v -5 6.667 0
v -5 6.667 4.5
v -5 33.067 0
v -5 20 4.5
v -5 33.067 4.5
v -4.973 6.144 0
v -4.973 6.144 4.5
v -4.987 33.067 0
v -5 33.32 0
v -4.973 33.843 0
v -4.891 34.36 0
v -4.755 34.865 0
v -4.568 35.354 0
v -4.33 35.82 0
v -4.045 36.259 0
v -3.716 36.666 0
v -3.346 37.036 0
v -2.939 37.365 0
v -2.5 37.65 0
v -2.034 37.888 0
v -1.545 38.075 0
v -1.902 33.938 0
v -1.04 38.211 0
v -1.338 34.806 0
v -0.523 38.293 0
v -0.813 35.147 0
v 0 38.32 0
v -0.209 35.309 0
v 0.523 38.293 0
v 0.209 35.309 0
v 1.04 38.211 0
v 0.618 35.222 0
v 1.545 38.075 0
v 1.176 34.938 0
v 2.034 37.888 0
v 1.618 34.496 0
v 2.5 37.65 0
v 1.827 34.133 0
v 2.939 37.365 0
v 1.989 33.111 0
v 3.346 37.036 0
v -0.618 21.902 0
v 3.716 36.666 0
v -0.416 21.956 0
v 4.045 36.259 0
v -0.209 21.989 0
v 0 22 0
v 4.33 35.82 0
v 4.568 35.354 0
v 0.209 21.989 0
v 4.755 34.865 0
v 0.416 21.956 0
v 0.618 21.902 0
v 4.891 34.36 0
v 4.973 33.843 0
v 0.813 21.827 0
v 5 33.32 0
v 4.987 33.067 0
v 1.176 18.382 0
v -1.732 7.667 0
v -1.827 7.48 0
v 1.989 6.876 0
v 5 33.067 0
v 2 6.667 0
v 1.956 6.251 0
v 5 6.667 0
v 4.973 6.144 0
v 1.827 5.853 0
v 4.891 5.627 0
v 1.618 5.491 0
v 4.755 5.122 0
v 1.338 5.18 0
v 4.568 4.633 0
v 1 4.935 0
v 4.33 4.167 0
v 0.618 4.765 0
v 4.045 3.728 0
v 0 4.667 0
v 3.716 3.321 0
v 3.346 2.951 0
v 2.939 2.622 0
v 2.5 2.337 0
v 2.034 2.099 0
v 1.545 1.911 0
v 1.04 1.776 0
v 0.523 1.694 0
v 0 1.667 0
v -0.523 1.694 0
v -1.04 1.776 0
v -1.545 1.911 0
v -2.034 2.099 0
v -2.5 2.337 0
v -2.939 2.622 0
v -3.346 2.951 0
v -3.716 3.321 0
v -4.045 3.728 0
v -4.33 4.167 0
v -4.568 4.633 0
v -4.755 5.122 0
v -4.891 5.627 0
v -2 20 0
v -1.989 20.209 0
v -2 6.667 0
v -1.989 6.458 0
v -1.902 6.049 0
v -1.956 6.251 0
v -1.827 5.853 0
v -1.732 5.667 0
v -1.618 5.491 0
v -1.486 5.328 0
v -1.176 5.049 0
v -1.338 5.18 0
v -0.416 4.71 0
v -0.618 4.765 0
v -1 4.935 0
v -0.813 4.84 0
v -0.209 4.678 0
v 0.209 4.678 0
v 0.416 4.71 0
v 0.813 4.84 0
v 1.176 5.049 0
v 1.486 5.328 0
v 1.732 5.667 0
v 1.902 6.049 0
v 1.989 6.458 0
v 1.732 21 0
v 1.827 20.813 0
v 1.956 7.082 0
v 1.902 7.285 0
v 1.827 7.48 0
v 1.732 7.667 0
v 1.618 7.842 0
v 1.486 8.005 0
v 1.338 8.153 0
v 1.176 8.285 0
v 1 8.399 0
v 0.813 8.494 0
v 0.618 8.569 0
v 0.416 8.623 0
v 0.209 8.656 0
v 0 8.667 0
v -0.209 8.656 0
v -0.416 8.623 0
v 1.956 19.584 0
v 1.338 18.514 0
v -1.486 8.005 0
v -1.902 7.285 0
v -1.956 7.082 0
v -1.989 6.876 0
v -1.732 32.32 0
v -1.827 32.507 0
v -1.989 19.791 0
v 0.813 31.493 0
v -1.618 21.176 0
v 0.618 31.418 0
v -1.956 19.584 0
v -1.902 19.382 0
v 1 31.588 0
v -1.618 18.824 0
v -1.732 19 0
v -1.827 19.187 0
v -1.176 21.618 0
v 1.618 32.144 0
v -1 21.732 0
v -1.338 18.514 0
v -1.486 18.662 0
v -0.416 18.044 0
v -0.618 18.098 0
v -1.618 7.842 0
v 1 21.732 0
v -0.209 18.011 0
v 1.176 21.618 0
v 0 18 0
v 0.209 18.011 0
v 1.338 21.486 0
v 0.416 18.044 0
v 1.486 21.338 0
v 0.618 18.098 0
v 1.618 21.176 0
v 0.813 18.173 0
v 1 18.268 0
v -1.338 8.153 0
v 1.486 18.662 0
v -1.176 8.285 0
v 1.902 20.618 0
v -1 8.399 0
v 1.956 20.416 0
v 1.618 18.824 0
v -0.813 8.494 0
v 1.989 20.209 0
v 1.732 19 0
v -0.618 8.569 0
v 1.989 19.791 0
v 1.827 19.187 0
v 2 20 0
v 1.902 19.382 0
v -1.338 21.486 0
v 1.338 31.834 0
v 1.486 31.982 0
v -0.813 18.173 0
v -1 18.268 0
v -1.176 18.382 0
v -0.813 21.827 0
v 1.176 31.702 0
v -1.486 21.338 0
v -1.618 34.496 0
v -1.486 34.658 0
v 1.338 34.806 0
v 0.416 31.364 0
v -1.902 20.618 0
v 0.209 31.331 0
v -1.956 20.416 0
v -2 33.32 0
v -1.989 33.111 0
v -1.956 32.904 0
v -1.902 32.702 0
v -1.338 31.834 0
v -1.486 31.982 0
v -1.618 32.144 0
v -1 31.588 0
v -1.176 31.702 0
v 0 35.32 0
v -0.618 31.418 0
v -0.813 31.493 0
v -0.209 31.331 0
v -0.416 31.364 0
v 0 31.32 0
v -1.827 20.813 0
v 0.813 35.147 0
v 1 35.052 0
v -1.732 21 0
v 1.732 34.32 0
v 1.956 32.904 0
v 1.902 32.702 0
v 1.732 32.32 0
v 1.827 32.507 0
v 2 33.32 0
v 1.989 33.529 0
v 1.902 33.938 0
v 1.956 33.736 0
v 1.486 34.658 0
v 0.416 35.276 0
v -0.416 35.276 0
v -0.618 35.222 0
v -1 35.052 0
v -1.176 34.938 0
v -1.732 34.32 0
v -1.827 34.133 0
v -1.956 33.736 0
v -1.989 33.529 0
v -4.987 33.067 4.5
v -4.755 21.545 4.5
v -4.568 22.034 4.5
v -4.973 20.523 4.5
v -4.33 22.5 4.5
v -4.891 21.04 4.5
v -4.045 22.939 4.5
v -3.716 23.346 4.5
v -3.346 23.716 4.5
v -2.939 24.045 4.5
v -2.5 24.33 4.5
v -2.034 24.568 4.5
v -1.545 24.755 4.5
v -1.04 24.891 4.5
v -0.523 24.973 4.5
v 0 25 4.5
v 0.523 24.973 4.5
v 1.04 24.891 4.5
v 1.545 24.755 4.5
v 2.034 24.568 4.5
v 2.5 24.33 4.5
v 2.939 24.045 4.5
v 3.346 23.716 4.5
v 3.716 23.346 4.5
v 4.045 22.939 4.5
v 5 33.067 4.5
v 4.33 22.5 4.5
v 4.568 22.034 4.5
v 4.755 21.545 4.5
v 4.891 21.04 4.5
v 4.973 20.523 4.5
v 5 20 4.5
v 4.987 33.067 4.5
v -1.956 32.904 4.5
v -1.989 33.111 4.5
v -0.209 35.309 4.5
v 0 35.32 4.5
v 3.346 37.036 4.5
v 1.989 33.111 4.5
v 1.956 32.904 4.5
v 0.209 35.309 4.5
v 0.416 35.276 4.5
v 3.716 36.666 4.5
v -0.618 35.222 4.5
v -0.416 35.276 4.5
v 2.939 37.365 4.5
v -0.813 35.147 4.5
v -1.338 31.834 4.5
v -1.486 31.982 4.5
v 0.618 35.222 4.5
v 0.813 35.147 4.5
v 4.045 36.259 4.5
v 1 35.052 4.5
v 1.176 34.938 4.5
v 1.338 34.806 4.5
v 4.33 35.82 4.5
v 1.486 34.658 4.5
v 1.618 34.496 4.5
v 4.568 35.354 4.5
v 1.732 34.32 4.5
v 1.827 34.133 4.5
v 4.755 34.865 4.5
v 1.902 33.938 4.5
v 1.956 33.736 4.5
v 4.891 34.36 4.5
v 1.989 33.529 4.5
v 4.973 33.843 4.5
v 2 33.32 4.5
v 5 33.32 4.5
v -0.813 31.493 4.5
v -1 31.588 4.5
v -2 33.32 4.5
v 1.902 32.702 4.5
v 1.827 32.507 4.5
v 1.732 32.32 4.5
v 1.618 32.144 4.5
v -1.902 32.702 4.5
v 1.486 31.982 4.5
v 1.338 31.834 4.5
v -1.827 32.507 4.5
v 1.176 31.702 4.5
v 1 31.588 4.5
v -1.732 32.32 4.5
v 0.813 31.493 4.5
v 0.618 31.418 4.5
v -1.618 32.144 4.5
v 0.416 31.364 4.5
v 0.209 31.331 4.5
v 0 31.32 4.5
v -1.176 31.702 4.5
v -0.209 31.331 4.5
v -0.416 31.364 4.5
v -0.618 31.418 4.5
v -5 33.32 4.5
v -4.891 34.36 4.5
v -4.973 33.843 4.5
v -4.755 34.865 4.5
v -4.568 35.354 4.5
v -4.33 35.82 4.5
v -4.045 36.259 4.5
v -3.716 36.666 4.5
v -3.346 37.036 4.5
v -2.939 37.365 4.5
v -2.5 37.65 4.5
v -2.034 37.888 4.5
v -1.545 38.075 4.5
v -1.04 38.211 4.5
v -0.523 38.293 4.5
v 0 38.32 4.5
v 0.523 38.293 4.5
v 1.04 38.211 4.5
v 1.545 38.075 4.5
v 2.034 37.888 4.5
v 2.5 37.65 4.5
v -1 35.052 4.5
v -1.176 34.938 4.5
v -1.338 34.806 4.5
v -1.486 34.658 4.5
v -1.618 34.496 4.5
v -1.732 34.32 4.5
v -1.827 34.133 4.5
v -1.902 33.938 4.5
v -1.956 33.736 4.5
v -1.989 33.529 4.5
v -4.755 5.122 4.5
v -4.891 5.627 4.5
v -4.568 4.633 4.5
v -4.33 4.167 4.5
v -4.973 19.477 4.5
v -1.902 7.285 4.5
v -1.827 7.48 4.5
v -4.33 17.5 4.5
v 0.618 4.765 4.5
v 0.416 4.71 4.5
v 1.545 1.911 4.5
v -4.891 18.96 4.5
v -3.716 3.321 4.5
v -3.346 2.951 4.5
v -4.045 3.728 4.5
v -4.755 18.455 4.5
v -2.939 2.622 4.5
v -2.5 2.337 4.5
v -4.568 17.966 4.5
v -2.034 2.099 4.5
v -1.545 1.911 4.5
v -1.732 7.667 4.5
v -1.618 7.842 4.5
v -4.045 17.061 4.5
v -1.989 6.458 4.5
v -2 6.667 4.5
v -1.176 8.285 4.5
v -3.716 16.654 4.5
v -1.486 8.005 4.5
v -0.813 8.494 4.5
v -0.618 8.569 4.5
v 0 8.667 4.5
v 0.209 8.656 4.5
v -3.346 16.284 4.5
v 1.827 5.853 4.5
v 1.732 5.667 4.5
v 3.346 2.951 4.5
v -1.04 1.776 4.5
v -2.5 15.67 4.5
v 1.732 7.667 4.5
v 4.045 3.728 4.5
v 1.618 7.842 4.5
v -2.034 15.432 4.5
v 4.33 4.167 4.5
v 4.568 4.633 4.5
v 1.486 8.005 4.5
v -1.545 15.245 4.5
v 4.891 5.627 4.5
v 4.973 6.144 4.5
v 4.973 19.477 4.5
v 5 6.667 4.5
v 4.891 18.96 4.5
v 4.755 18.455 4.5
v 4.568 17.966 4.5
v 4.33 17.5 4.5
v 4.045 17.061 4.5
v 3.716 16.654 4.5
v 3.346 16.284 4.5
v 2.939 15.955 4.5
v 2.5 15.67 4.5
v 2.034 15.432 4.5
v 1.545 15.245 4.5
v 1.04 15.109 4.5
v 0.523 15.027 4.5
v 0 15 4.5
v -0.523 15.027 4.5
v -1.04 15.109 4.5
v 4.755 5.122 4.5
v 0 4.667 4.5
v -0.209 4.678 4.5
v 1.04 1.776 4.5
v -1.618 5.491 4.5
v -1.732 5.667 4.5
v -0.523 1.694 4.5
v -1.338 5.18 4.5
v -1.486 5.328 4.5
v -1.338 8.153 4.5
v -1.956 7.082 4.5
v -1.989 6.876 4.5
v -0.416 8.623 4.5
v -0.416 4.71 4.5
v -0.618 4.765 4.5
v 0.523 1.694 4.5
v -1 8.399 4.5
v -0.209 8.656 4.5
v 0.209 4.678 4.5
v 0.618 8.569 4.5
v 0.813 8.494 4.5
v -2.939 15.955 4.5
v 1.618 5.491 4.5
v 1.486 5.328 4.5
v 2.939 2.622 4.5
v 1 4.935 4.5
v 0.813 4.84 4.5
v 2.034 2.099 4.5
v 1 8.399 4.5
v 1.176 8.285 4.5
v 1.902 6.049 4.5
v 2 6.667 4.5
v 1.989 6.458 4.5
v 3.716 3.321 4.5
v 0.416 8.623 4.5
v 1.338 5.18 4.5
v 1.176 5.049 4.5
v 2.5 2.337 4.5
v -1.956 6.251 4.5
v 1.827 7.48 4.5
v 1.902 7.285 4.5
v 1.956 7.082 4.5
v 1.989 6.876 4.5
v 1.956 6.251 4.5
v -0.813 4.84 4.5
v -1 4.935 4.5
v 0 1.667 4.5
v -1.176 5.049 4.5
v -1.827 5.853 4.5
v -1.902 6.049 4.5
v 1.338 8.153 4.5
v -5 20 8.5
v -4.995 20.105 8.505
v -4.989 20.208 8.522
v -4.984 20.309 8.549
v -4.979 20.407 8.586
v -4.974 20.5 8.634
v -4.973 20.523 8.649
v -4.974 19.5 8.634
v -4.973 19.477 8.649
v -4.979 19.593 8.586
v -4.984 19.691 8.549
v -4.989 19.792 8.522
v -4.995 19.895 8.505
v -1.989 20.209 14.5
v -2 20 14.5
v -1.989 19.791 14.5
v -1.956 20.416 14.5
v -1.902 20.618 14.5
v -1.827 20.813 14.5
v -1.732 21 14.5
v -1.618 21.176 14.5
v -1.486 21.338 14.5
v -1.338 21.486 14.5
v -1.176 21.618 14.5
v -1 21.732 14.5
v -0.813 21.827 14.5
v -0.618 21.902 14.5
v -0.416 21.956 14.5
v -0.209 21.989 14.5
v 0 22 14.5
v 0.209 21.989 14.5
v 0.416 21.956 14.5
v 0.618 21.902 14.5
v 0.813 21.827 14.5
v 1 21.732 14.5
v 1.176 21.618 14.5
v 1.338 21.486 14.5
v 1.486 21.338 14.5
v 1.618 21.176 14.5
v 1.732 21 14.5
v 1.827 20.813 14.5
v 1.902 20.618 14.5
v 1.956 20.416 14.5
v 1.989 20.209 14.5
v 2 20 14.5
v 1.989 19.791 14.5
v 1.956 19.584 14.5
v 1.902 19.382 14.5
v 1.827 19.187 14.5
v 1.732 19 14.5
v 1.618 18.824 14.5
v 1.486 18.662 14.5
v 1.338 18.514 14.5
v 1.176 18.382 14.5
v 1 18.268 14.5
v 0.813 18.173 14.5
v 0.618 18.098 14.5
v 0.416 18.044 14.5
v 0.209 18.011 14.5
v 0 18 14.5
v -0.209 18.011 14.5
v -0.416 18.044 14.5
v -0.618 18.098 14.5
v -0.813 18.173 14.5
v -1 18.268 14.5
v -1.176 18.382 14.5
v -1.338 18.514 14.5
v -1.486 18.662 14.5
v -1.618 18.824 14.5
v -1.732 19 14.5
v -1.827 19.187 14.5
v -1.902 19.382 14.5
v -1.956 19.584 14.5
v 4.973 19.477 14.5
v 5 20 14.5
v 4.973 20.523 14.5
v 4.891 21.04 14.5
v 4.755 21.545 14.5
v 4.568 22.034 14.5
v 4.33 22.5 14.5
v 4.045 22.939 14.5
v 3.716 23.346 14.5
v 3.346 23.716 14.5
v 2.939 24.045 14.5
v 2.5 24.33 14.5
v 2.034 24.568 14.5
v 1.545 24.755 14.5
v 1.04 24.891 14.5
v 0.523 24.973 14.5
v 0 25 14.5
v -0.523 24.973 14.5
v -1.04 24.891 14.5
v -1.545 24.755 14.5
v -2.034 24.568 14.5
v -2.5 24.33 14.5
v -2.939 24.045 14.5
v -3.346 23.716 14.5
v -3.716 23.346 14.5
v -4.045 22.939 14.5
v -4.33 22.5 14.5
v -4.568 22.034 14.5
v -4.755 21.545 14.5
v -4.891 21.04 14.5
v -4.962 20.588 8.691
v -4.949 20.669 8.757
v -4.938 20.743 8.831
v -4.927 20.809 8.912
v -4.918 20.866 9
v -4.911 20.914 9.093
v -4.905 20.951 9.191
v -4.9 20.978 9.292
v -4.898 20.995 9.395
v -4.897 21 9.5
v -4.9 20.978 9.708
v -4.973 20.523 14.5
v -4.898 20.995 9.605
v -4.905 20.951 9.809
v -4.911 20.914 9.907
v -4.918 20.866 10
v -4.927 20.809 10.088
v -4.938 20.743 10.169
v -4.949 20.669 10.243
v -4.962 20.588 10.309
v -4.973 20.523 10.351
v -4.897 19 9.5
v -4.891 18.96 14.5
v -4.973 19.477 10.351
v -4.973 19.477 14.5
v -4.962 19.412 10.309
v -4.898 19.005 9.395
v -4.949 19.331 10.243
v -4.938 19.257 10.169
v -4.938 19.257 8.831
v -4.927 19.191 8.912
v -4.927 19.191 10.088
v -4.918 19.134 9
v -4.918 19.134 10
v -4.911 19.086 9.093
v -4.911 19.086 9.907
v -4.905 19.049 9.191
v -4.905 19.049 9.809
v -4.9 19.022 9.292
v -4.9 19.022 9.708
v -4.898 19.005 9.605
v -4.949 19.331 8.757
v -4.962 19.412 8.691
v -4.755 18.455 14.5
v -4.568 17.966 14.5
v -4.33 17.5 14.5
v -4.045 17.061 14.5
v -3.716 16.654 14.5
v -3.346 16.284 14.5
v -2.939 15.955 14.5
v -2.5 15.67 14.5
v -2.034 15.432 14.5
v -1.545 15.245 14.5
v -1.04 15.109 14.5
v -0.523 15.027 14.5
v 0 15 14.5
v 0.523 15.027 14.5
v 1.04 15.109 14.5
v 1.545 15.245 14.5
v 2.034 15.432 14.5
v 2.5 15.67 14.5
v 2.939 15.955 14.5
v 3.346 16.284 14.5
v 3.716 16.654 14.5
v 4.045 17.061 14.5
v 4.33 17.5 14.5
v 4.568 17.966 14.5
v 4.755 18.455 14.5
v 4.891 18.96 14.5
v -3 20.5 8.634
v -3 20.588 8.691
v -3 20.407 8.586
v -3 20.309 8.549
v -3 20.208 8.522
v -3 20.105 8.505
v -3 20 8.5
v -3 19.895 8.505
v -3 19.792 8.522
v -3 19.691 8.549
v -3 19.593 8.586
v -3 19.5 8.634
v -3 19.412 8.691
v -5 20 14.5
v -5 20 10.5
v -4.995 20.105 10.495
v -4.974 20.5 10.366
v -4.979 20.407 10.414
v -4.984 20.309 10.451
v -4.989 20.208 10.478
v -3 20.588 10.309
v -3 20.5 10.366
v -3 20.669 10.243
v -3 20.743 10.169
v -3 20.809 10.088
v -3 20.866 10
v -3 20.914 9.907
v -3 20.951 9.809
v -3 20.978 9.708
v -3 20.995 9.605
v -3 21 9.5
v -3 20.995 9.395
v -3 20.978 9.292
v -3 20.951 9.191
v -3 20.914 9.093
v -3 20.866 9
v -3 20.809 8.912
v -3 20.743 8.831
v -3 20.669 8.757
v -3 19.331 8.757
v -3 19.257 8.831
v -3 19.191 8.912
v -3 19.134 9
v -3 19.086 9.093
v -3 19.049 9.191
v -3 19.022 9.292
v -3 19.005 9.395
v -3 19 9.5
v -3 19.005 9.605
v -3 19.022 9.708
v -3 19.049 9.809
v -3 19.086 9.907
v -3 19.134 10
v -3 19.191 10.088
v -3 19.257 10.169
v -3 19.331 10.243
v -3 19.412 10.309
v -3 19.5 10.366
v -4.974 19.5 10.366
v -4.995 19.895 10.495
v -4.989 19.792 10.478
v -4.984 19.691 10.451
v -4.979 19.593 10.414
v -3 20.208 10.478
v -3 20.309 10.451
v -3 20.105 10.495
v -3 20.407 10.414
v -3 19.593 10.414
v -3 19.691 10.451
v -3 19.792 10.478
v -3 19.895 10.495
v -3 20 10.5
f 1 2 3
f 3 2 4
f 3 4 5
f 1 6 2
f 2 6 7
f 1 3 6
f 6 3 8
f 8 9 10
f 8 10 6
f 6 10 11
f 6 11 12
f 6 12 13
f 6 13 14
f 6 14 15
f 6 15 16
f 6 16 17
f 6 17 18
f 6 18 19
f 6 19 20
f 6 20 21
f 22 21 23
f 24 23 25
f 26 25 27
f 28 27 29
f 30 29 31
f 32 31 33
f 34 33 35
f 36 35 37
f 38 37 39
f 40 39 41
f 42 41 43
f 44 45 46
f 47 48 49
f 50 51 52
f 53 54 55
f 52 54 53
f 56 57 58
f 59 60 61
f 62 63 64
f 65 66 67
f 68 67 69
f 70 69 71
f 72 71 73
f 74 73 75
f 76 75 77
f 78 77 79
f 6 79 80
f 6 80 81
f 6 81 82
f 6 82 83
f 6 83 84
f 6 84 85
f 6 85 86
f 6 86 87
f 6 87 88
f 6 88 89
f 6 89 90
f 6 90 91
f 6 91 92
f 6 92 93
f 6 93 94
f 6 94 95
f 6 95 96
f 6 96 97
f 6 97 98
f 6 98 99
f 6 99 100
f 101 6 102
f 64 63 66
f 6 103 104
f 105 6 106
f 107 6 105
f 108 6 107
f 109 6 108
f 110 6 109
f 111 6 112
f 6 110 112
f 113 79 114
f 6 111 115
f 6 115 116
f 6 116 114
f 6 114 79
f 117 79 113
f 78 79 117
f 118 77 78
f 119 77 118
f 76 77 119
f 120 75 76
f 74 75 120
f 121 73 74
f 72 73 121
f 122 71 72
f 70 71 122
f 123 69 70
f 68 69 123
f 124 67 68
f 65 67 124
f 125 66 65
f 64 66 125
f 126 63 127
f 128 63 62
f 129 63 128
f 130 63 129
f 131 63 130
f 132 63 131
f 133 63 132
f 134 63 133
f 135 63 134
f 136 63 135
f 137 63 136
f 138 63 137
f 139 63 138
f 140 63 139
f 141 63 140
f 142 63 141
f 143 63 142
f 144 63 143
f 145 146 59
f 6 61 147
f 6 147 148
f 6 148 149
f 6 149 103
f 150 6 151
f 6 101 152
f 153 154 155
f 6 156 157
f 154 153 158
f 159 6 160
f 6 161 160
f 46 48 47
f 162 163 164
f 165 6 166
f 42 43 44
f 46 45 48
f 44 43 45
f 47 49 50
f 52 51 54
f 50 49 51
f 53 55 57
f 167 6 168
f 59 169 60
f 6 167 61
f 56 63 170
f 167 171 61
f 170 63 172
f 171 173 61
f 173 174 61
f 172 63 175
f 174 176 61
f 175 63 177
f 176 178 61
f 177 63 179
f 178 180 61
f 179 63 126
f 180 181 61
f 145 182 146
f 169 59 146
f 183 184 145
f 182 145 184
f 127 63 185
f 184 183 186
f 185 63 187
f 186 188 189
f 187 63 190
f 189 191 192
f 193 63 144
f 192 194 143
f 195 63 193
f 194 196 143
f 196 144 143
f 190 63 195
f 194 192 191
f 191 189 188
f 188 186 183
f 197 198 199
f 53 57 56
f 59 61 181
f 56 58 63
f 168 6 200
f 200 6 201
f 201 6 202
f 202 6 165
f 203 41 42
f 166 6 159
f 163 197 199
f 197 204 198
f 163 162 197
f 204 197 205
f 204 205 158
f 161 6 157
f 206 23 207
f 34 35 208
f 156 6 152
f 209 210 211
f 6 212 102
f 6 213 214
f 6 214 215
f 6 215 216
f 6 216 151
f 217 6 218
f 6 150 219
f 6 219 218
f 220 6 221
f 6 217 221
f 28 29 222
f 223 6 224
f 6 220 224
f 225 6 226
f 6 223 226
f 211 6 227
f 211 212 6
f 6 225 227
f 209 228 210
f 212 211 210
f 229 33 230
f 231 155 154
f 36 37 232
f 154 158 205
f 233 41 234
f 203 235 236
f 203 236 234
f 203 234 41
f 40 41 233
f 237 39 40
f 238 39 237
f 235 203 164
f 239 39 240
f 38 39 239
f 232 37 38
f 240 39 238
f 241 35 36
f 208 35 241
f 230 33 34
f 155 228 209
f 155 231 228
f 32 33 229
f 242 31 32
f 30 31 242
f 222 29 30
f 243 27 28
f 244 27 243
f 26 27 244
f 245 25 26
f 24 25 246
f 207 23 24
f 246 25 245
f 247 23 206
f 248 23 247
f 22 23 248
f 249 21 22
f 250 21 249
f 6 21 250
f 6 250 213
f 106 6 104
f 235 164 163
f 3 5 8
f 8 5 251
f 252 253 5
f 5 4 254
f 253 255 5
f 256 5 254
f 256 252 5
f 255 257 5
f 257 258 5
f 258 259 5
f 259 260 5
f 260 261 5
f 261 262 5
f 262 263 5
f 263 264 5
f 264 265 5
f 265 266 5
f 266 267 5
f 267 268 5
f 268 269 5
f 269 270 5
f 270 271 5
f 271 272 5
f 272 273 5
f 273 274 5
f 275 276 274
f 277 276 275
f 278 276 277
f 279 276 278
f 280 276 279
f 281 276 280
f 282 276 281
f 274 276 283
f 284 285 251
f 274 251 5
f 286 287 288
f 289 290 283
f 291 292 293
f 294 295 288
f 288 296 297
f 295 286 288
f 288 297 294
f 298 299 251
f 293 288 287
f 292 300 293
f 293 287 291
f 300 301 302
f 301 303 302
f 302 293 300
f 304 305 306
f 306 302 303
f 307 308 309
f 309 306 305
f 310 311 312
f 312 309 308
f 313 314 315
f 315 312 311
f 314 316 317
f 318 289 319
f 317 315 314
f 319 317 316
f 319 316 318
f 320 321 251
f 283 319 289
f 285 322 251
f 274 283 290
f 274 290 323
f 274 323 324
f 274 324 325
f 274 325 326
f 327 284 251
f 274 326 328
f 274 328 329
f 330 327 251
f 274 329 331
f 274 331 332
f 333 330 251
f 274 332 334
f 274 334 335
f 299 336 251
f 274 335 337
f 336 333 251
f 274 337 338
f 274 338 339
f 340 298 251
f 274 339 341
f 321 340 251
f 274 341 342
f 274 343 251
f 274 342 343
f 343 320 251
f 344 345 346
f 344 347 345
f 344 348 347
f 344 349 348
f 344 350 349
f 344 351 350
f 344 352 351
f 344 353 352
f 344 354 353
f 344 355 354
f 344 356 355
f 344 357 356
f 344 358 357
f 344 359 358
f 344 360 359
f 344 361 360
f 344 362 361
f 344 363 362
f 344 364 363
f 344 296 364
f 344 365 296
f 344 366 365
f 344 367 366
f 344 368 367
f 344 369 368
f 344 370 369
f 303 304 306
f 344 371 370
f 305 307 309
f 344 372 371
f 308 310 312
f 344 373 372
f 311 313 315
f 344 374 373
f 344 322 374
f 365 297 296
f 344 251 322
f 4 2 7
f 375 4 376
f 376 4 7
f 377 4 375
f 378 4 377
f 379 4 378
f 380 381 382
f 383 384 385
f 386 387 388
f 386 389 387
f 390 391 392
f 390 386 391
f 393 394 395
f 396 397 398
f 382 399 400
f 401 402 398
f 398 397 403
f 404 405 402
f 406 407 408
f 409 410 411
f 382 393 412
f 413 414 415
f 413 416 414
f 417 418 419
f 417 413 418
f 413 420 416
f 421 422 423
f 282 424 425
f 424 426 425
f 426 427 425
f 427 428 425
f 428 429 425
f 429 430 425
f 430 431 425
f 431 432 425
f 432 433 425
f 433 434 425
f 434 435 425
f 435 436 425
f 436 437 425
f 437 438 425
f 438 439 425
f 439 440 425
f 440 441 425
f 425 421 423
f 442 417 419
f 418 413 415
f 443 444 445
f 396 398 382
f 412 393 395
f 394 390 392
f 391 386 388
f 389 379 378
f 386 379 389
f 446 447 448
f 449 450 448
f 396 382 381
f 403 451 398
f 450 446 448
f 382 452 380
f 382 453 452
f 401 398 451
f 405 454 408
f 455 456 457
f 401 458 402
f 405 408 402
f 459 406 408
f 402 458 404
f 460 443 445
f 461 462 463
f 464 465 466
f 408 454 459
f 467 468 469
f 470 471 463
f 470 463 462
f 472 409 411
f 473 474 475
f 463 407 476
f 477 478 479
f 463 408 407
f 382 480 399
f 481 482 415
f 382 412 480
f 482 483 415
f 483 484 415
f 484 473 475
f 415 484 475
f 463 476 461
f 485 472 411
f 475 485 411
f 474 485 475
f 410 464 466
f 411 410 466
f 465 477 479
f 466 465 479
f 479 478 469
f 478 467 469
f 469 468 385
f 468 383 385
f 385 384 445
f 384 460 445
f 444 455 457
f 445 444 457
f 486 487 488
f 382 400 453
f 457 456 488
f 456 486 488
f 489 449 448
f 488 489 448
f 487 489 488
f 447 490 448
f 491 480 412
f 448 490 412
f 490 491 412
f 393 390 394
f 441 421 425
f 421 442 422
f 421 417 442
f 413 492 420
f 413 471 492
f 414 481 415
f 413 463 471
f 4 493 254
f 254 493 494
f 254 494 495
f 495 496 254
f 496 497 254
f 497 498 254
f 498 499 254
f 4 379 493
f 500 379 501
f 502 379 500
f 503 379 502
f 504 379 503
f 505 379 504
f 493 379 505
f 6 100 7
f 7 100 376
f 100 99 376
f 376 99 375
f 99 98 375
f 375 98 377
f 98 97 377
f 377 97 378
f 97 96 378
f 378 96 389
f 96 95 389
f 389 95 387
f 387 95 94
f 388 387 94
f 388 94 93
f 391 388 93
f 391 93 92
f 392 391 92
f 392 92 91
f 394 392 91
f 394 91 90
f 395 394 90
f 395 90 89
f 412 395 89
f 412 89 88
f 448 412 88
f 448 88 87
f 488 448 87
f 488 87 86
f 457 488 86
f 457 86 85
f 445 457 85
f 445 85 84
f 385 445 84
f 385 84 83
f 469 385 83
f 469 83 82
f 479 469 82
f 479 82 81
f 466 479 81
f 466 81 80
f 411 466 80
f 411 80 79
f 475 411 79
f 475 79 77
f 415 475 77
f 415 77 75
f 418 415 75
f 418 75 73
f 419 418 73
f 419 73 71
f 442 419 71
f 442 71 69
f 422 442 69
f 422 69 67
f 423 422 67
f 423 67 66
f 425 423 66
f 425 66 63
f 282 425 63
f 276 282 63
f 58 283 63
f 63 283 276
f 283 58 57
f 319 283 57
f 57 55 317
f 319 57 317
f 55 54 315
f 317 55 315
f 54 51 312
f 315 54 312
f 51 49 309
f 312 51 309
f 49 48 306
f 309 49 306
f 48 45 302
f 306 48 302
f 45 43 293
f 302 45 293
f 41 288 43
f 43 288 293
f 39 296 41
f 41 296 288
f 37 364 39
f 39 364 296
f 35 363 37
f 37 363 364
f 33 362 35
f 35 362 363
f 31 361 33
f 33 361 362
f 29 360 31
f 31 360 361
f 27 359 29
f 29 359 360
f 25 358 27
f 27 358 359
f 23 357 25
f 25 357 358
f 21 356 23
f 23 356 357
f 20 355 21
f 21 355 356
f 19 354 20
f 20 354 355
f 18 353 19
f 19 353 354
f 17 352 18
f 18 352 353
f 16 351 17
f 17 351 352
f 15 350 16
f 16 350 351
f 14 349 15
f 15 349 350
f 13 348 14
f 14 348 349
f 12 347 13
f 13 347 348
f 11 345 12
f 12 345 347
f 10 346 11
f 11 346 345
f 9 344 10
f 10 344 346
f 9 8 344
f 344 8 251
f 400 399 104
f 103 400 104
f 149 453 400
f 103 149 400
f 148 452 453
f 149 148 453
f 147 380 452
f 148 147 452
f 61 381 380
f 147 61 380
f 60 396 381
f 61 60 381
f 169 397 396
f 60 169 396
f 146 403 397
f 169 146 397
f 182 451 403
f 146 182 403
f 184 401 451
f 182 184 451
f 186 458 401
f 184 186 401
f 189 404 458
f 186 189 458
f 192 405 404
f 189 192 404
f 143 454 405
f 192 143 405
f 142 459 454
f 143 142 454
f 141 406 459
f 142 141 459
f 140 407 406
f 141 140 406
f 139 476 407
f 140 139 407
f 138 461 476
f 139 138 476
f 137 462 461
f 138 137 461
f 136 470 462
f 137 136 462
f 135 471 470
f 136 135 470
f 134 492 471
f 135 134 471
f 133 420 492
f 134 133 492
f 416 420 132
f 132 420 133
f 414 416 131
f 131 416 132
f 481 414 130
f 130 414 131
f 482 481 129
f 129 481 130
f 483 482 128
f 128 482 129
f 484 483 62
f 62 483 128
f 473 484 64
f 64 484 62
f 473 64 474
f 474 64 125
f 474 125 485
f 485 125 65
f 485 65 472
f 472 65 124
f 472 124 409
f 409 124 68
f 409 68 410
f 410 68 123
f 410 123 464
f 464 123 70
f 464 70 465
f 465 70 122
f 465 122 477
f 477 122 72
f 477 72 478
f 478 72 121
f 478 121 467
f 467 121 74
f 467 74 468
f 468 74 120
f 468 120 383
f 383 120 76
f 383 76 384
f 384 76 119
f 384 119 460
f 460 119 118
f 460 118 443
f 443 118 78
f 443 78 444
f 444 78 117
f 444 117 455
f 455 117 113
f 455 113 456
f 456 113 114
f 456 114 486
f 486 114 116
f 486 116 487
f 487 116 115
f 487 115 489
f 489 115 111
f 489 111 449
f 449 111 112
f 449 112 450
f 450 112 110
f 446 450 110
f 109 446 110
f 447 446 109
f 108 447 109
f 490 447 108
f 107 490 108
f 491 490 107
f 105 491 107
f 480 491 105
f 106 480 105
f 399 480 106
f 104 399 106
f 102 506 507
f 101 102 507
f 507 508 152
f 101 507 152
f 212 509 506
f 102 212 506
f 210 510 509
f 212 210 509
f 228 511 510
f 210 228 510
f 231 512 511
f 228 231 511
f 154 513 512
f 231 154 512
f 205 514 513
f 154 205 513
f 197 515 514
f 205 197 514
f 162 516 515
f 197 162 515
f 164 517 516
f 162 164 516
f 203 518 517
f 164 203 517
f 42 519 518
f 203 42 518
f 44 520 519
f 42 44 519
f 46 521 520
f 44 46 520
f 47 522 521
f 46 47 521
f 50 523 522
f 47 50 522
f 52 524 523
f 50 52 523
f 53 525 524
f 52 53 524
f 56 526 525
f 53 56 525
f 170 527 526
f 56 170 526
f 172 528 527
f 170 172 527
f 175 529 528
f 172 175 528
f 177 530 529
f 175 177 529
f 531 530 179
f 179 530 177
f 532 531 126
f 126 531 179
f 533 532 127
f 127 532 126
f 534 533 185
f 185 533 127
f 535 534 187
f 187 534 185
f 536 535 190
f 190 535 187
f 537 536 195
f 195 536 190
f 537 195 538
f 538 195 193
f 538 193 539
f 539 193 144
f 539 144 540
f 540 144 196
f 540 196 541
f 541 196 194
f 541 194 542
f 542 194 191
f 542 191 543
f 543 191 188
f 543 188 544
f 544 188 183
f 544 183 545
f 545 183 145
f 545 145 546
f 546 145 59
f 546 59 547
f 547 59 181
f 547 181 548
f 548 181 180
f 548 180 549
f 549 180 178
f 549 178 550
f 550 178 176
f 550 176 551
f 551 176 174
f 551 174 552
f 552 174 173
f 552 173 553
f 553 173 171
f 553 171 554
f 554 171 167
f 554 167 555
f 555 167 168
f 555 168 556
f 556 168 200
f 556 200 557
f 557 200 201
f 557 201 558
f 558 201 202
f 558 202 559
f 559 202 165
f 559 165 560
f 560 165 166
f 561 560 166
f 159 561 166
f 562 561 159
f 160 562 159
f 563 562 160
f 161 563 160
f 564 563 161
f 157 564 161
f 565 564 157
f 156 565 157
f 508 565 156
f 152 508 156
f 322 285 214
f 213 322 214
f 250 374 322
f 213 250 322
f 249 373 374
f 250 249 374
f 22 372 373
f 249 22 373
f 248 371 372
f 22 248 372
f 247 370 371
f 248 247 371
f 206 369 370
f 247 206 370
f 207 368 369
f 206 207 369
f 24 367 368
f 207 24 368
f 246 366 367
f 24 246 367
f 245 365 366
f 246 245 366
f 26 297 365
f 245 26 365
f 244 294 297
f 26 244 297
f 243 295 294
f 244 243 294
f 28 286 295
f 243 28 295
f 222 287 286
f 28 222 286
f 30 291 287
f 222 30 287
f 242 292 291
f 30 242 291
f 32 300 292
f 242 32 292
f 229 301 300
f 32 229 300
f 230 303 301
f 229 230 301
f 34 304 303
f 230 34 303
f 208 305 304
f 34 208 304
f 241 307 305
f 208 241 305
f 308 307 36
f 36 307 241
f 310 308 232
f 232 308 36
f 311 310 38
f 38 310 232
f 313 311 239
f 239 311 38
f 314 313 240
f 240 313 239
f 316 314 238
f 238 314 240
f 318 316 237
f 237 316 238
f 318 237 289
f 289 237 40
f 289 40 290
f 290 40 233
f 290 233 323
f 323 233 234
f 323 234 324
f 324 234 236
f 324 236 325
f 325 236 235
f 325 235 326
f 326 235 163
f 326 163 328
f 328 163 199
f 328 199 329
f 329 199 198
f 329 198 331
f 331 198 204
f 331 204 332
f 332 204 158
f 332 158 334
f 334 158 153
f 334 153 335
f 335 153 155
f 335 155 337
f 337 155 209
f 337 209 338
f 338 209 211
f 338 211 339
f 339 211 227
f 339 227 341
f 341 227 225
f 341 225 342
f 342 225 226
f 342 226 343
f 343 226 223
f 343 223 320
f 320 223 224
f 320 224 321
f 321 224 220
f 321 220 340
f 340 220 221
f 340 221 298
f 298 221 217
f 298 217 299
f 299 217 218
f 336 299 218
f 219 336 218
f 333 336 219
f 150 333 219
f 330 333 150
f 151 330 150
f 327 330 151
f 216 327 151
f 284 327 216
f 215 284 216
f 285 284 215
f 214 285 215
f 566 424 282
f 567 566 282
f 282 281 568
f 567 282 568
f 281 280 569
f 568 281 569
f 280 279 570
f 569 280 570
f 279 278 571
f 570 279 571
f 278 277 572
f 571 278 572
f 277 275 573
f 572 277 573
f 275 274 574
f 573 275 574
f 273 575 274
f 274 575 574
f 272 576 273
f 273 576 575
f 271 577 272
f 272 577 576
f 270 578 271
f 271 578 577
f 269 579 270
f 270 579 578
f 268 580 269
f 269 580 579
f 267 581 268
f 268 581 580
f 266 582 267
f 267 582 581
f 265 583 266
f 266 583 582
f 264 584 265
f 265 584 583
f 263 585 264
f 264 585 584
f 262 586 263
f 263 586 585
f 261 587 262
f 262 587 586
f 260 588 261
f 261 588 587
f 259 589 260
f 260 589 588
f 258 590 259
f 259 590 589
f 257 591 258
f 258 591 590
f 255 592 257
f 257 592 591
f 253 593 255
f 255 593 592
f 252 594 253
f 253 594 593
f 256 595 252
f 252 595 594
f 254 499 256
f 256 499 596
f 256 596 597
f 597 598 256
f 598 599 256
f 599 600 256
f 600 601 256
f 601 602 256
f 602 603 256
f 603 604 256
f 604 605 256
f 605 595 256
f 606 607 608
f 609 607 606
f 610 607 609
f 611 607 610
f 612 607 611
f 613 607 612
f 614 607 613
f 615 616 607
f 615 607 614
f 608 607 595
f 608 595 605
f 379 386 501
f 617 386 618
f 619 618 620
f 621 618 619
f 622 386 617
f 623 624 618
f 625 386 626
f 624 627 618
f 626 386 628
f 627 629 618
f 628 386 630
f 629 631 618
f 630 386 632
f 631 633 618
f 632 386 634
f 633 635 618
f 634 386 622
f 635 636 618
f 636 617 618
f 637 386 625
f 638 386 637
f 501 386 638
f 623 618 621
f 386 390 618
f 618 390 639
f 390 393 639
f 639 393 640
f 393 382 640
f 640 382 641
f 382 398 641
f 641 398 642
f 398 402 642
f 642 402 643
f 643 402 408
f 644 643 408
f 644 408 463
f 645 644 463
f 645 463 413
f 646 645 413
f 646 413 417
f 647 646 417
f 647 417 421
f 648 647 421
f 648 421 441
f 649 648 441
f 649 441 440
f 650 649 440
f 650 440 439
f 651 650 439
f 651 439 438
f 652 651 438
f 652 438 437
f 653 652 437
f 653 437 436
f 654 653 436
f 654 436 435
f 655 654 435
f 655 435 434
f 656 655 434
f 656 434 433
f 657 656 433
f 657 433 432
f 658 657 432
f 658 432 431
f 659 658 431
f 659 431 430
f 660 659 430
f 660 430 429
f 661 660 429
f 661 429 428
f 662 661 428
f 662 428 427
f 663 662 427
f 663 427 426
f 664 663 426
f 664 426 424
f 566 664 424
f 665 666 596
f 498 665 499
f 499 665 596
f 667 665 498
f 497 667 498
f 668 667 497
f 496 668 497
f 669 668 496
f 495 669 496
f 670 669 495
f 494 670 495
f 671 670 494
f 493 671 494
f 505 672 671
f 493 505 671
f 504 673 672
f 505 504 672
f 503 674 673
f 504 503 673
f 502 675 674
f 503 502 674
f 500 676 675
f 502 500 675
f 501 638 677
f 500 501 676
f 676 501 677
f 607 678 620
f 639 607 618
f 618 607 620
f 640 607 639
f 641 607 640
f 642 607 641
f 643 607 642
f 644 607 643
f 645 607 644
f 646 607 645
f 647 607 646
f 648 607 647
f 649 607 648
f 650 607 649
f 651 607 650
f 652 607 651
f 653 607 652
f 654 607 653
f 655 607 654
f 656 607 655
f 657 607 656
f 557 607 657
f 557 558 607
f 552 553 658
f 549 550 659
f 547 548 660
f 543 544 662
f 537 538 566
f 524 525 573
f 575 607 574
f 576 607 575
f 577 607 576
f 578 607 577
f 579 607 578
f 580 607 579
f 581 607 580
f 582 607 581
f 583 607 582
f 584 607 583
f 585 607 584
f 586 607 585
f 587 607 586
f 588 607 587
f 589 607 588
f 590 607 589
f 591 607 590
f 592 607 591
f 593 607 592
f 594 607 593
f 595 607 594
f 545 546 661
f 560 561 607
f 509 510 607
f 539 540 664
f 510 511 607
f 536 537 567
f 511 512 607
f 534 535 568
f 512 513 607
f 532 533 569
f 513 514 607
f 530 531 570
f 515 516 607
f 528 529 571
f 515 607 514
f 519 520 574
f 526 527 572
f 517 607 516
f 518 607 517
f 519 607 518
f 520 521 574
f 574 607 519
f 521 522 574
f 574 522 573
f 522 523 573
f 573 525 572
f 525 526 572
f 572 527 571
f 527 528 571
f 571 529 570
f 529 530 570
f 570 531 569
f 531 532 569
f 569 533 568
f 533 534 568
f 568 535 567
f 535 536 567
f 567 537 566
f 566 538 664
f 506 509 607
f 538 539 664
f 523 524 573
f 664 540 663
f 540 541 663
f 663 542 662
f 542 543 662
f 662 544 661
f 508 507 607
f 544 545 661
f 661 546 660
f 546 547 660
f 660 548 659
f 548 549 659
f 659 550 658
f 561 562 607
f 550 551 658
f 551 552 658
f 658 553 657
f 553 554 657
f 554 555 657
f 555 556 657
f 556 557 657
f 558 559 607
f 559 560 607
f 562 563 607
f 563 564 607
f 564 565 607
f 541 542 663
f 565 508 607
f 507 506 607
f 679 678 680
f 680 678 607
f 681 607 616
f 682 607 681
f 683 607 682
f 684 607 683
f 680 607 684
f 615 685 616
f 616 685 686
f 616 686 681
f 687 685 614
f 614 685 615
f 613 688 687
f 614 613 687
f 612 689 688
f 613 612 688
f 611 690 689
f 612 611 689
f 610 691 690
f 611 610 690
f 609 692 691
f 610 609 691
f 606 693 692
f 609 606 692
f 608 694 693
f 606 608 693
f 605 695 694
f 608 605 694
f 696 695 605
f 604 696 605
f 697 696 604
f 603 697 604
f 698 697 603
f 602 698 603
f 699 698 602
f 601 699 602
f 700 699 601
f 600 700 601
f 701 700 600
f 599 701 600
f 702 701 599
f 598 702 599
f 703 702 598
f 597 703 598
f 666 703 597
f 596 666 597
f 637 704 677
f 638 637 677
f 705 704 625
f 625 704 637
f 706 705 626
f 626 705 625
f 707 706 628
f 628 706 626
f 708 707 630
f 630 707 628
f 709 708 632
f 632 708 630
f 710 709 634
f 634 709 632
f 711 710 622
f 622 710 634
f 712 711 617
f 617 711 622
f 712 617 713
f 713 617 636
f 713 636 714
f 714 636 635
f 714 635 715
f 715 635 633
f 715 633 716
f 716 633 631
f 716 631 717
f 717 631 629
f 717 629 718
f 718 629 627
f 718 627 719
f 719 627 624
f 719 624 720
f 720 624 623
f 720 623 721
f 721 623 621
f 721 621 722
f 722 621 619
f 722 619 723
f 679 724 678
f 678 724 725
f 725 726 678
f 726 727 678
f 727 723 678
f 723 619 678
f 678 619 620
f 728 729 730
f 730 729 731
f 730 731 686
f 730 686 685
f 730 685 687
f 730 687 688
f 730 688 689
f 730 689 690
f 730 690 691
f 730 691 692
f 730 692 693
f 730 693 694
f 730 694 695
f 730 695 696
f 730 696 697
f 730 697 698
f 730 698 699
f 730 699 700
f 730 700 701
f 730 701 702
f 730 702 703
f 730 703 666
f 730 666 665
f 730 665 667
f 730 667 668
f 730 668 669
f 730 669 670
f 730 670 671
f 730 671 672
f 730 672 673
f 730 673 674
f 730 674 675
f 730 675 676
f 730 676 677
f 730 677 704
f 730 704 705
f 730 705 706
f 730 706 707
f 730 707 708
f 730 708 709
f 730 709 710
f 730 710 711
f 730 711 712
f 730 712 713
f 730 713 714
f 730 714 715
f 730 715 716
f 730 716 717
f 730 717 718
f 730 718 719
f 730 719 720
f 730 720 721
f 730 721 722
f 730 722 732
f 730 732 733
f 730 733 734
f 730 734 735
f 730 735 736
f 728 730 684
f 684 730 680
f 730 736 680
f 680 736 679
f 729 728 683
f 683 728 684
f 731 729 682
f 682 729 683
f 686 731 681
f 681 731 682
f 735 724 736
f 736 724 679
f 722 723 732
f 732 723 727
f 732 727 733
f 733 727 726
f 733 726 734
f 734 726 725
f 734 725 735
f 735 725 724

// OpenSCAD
// file: ../config.scad
// This is the config for an M8 Mendel sized printer.

//Constants (These are used throughout the whole printer)
frameroddia = 8.5; //the frame rod diameter
smoothroddia = 8.5; //the smooth rod diameter
bushingod = 16; //The prusabushing OD, you can change this to 15 to use LM8UU linear bearings 
bushingheight = 11;
tapsize = 7; //The size of the hole before tapping. 7mm seems to work well.

nemasize = 1.7; //Nema Size (in imperial)
motorcenter = 23; //center hole size for the motor. If your motor center flange is smaller you can beef up parts this way. 
motorshaftdia = 5; // Motor shaft diameter
motortabwall = 2;
motorcenterwall = 5;

pulleypitch = 5;
pulleyteeth = 8;
pulleydia = 12; // this will be replaced by the above soon

/* The Mixtape Mendel uses two types of fasteners. One is the "primary" type, which is the larger type that builds the structure,
 which was profiled above as "frameroddia, etc..". In the case of the Mendel, it is M8 threaded rod. It also uses "Secondary" hardware. This is a smaller screw used to retain tool heads, attach motors and lock pulleys on shafts. In the case of Mendel this is M3. 
*/
nutheight = 7; //Primary
nutdia = 14.8; //Primary
secscrewdia = 4; //secondary 
secscrewtap = 2; // secondary

beltthick = 2; //Thickness of the timing belt
beltwidth = 7; // Belt width, used for the y bed clamps

mdfthick = 6; //thickness of MDF (You can use other wood, acrylic, lexan, etc)

bearingid = 8; // 608
bearingod = 22; // 608
bearinginnerrace = 12; // the amount of the inner race diameter exposed

tapping = true; //turn tapping on/off, not implemented yet. (Version 0.3 might implement this) Version 0.2 has tapping by default right now
layerheight = 0.32; //skeinforge/slicer layer height, used for the idler wasers right now. 

//Frame Vertex
vertexwall = 3;
triangle = 60; // the angle the bottom vertexes have relative to horizontal

//Y Motor Mount
ymountthick = 9;
ywallmulti = 2; //the wall thickness multiplier for the bits that interface with the frame rod
ymotorwallmulti = 2.4; //multiplier for the motor holes because you might want them thicker
ycenterwallmulti = 1.5; //multiplier for the center hole because you might want them thinner

//Y Belt Clamps
clampthick = 4;
clampholewall = 3;

//Bar Clamps
barclampwall = 4;

//Top Piece
partthick = 8;
toprodwall = 4;
toprodspacing = 72;
siderodwall = 4;

// X End Pieces
xrodspacing = 50; //rod spacing center to center
nutwall = 3; //wall thickness around nut and bushing
towergap= 10; // 0.75 diameter wrap should be ok i think. Make a flag for full wrap and no square for bushings/linear bearings maybe?
//Motor
motorinterface = 6; //thickness of the motor mount (6 works well, need to decouple from top piece)

//X Carriage 
carriagewidth = 50;
bushingwall = 3;
backwall = 5;
tools = 2;
tool1dia = 17;
tool2dia = 17;
adapterholedia = secscrewdia;
platformthick = 7;
platformextension = 40; 
clampthick = 4;
clampholedia = 4;

//Z Coupler
couplerwall = 4;
couplerheight = 34;
 
//Extruder (Plastic Pusher)
extruderthick = 5;
bowdencabledia = 4;
bowdenwall = 3;
idlerwall = 2;
pinchwheeldia = 8;

//Utility Clamp 
utilityclampwall = 3;

//Groove Mount
	//Default is pretty good for MakerGear insulators
groovedia = 12;
grooveheight = 4.5;

//pen holder 
penwall = 3 ;
shaftheight = 30;
// main file
/*
  Mixtape Mendel - A Fully Parametric RepRap
    Copyright (C) 2011  Steve Kelly

    This program is free software: you can redistribute it and/or modify
    it under the terms of the GNU General Public License as published by
    the Free Software Foundation, either version 3 of the License, or
    (at your option) any later version.

    This program is distributed in the hope that it will be useful,
    but WITHOUT ANY WARRANTY; without even the implied warranty of
    MERCHANTABILITY or FITNESS FOR A PARTICULAR PURPOSE.  See the
    GNU General Public License for more details.

    You should have received a copy of the GNU General Public License
    along with this program.  If not, see <http://www.gnu.org/licenses/>.
*/

include <../config.scad>;
$fn = 60;

difference(){
union(){
translate([0,platformextension/2,0])cylinder(r=bowdencabledia/2+bowdenwall, h = grooveheight+secscrewdia+bowdenwall*2);
translate([0,platformextension/6,0])cylinder(r=secscrewdia/2 + penwall,h=grooveheight);
translate([0,platformextension*0.833,0])cylinder(r=secscrewdia/2 + penwall,h=grooveheight);
translate([-secscrewdia/2-penwall,platformextension/6,0])cube([secscrewdia+penwall*2,platformextension*0.66,grooveheight]);

}
translate([0,platformextension/2,0])cylinder(r=bowdencabledia/2, h =  grooveheight+secscrewdia+bowdenwall*2);
translate([-tool1dia/2-penwall,platformextension/2,grooveheight+secscrewdia/2+bowdenwall])rotate([0,90,0])cylinder(r=secscrewtap/2, h = tool1dia/2);
translate([0,platformextension/6,-1])cylinder(r=secscrewdia/2,h=platformthick+2);
translate([0,platformextension*0.833,-1])cylinder(r=secscrewdia/2,h=platformthick+2);
}
